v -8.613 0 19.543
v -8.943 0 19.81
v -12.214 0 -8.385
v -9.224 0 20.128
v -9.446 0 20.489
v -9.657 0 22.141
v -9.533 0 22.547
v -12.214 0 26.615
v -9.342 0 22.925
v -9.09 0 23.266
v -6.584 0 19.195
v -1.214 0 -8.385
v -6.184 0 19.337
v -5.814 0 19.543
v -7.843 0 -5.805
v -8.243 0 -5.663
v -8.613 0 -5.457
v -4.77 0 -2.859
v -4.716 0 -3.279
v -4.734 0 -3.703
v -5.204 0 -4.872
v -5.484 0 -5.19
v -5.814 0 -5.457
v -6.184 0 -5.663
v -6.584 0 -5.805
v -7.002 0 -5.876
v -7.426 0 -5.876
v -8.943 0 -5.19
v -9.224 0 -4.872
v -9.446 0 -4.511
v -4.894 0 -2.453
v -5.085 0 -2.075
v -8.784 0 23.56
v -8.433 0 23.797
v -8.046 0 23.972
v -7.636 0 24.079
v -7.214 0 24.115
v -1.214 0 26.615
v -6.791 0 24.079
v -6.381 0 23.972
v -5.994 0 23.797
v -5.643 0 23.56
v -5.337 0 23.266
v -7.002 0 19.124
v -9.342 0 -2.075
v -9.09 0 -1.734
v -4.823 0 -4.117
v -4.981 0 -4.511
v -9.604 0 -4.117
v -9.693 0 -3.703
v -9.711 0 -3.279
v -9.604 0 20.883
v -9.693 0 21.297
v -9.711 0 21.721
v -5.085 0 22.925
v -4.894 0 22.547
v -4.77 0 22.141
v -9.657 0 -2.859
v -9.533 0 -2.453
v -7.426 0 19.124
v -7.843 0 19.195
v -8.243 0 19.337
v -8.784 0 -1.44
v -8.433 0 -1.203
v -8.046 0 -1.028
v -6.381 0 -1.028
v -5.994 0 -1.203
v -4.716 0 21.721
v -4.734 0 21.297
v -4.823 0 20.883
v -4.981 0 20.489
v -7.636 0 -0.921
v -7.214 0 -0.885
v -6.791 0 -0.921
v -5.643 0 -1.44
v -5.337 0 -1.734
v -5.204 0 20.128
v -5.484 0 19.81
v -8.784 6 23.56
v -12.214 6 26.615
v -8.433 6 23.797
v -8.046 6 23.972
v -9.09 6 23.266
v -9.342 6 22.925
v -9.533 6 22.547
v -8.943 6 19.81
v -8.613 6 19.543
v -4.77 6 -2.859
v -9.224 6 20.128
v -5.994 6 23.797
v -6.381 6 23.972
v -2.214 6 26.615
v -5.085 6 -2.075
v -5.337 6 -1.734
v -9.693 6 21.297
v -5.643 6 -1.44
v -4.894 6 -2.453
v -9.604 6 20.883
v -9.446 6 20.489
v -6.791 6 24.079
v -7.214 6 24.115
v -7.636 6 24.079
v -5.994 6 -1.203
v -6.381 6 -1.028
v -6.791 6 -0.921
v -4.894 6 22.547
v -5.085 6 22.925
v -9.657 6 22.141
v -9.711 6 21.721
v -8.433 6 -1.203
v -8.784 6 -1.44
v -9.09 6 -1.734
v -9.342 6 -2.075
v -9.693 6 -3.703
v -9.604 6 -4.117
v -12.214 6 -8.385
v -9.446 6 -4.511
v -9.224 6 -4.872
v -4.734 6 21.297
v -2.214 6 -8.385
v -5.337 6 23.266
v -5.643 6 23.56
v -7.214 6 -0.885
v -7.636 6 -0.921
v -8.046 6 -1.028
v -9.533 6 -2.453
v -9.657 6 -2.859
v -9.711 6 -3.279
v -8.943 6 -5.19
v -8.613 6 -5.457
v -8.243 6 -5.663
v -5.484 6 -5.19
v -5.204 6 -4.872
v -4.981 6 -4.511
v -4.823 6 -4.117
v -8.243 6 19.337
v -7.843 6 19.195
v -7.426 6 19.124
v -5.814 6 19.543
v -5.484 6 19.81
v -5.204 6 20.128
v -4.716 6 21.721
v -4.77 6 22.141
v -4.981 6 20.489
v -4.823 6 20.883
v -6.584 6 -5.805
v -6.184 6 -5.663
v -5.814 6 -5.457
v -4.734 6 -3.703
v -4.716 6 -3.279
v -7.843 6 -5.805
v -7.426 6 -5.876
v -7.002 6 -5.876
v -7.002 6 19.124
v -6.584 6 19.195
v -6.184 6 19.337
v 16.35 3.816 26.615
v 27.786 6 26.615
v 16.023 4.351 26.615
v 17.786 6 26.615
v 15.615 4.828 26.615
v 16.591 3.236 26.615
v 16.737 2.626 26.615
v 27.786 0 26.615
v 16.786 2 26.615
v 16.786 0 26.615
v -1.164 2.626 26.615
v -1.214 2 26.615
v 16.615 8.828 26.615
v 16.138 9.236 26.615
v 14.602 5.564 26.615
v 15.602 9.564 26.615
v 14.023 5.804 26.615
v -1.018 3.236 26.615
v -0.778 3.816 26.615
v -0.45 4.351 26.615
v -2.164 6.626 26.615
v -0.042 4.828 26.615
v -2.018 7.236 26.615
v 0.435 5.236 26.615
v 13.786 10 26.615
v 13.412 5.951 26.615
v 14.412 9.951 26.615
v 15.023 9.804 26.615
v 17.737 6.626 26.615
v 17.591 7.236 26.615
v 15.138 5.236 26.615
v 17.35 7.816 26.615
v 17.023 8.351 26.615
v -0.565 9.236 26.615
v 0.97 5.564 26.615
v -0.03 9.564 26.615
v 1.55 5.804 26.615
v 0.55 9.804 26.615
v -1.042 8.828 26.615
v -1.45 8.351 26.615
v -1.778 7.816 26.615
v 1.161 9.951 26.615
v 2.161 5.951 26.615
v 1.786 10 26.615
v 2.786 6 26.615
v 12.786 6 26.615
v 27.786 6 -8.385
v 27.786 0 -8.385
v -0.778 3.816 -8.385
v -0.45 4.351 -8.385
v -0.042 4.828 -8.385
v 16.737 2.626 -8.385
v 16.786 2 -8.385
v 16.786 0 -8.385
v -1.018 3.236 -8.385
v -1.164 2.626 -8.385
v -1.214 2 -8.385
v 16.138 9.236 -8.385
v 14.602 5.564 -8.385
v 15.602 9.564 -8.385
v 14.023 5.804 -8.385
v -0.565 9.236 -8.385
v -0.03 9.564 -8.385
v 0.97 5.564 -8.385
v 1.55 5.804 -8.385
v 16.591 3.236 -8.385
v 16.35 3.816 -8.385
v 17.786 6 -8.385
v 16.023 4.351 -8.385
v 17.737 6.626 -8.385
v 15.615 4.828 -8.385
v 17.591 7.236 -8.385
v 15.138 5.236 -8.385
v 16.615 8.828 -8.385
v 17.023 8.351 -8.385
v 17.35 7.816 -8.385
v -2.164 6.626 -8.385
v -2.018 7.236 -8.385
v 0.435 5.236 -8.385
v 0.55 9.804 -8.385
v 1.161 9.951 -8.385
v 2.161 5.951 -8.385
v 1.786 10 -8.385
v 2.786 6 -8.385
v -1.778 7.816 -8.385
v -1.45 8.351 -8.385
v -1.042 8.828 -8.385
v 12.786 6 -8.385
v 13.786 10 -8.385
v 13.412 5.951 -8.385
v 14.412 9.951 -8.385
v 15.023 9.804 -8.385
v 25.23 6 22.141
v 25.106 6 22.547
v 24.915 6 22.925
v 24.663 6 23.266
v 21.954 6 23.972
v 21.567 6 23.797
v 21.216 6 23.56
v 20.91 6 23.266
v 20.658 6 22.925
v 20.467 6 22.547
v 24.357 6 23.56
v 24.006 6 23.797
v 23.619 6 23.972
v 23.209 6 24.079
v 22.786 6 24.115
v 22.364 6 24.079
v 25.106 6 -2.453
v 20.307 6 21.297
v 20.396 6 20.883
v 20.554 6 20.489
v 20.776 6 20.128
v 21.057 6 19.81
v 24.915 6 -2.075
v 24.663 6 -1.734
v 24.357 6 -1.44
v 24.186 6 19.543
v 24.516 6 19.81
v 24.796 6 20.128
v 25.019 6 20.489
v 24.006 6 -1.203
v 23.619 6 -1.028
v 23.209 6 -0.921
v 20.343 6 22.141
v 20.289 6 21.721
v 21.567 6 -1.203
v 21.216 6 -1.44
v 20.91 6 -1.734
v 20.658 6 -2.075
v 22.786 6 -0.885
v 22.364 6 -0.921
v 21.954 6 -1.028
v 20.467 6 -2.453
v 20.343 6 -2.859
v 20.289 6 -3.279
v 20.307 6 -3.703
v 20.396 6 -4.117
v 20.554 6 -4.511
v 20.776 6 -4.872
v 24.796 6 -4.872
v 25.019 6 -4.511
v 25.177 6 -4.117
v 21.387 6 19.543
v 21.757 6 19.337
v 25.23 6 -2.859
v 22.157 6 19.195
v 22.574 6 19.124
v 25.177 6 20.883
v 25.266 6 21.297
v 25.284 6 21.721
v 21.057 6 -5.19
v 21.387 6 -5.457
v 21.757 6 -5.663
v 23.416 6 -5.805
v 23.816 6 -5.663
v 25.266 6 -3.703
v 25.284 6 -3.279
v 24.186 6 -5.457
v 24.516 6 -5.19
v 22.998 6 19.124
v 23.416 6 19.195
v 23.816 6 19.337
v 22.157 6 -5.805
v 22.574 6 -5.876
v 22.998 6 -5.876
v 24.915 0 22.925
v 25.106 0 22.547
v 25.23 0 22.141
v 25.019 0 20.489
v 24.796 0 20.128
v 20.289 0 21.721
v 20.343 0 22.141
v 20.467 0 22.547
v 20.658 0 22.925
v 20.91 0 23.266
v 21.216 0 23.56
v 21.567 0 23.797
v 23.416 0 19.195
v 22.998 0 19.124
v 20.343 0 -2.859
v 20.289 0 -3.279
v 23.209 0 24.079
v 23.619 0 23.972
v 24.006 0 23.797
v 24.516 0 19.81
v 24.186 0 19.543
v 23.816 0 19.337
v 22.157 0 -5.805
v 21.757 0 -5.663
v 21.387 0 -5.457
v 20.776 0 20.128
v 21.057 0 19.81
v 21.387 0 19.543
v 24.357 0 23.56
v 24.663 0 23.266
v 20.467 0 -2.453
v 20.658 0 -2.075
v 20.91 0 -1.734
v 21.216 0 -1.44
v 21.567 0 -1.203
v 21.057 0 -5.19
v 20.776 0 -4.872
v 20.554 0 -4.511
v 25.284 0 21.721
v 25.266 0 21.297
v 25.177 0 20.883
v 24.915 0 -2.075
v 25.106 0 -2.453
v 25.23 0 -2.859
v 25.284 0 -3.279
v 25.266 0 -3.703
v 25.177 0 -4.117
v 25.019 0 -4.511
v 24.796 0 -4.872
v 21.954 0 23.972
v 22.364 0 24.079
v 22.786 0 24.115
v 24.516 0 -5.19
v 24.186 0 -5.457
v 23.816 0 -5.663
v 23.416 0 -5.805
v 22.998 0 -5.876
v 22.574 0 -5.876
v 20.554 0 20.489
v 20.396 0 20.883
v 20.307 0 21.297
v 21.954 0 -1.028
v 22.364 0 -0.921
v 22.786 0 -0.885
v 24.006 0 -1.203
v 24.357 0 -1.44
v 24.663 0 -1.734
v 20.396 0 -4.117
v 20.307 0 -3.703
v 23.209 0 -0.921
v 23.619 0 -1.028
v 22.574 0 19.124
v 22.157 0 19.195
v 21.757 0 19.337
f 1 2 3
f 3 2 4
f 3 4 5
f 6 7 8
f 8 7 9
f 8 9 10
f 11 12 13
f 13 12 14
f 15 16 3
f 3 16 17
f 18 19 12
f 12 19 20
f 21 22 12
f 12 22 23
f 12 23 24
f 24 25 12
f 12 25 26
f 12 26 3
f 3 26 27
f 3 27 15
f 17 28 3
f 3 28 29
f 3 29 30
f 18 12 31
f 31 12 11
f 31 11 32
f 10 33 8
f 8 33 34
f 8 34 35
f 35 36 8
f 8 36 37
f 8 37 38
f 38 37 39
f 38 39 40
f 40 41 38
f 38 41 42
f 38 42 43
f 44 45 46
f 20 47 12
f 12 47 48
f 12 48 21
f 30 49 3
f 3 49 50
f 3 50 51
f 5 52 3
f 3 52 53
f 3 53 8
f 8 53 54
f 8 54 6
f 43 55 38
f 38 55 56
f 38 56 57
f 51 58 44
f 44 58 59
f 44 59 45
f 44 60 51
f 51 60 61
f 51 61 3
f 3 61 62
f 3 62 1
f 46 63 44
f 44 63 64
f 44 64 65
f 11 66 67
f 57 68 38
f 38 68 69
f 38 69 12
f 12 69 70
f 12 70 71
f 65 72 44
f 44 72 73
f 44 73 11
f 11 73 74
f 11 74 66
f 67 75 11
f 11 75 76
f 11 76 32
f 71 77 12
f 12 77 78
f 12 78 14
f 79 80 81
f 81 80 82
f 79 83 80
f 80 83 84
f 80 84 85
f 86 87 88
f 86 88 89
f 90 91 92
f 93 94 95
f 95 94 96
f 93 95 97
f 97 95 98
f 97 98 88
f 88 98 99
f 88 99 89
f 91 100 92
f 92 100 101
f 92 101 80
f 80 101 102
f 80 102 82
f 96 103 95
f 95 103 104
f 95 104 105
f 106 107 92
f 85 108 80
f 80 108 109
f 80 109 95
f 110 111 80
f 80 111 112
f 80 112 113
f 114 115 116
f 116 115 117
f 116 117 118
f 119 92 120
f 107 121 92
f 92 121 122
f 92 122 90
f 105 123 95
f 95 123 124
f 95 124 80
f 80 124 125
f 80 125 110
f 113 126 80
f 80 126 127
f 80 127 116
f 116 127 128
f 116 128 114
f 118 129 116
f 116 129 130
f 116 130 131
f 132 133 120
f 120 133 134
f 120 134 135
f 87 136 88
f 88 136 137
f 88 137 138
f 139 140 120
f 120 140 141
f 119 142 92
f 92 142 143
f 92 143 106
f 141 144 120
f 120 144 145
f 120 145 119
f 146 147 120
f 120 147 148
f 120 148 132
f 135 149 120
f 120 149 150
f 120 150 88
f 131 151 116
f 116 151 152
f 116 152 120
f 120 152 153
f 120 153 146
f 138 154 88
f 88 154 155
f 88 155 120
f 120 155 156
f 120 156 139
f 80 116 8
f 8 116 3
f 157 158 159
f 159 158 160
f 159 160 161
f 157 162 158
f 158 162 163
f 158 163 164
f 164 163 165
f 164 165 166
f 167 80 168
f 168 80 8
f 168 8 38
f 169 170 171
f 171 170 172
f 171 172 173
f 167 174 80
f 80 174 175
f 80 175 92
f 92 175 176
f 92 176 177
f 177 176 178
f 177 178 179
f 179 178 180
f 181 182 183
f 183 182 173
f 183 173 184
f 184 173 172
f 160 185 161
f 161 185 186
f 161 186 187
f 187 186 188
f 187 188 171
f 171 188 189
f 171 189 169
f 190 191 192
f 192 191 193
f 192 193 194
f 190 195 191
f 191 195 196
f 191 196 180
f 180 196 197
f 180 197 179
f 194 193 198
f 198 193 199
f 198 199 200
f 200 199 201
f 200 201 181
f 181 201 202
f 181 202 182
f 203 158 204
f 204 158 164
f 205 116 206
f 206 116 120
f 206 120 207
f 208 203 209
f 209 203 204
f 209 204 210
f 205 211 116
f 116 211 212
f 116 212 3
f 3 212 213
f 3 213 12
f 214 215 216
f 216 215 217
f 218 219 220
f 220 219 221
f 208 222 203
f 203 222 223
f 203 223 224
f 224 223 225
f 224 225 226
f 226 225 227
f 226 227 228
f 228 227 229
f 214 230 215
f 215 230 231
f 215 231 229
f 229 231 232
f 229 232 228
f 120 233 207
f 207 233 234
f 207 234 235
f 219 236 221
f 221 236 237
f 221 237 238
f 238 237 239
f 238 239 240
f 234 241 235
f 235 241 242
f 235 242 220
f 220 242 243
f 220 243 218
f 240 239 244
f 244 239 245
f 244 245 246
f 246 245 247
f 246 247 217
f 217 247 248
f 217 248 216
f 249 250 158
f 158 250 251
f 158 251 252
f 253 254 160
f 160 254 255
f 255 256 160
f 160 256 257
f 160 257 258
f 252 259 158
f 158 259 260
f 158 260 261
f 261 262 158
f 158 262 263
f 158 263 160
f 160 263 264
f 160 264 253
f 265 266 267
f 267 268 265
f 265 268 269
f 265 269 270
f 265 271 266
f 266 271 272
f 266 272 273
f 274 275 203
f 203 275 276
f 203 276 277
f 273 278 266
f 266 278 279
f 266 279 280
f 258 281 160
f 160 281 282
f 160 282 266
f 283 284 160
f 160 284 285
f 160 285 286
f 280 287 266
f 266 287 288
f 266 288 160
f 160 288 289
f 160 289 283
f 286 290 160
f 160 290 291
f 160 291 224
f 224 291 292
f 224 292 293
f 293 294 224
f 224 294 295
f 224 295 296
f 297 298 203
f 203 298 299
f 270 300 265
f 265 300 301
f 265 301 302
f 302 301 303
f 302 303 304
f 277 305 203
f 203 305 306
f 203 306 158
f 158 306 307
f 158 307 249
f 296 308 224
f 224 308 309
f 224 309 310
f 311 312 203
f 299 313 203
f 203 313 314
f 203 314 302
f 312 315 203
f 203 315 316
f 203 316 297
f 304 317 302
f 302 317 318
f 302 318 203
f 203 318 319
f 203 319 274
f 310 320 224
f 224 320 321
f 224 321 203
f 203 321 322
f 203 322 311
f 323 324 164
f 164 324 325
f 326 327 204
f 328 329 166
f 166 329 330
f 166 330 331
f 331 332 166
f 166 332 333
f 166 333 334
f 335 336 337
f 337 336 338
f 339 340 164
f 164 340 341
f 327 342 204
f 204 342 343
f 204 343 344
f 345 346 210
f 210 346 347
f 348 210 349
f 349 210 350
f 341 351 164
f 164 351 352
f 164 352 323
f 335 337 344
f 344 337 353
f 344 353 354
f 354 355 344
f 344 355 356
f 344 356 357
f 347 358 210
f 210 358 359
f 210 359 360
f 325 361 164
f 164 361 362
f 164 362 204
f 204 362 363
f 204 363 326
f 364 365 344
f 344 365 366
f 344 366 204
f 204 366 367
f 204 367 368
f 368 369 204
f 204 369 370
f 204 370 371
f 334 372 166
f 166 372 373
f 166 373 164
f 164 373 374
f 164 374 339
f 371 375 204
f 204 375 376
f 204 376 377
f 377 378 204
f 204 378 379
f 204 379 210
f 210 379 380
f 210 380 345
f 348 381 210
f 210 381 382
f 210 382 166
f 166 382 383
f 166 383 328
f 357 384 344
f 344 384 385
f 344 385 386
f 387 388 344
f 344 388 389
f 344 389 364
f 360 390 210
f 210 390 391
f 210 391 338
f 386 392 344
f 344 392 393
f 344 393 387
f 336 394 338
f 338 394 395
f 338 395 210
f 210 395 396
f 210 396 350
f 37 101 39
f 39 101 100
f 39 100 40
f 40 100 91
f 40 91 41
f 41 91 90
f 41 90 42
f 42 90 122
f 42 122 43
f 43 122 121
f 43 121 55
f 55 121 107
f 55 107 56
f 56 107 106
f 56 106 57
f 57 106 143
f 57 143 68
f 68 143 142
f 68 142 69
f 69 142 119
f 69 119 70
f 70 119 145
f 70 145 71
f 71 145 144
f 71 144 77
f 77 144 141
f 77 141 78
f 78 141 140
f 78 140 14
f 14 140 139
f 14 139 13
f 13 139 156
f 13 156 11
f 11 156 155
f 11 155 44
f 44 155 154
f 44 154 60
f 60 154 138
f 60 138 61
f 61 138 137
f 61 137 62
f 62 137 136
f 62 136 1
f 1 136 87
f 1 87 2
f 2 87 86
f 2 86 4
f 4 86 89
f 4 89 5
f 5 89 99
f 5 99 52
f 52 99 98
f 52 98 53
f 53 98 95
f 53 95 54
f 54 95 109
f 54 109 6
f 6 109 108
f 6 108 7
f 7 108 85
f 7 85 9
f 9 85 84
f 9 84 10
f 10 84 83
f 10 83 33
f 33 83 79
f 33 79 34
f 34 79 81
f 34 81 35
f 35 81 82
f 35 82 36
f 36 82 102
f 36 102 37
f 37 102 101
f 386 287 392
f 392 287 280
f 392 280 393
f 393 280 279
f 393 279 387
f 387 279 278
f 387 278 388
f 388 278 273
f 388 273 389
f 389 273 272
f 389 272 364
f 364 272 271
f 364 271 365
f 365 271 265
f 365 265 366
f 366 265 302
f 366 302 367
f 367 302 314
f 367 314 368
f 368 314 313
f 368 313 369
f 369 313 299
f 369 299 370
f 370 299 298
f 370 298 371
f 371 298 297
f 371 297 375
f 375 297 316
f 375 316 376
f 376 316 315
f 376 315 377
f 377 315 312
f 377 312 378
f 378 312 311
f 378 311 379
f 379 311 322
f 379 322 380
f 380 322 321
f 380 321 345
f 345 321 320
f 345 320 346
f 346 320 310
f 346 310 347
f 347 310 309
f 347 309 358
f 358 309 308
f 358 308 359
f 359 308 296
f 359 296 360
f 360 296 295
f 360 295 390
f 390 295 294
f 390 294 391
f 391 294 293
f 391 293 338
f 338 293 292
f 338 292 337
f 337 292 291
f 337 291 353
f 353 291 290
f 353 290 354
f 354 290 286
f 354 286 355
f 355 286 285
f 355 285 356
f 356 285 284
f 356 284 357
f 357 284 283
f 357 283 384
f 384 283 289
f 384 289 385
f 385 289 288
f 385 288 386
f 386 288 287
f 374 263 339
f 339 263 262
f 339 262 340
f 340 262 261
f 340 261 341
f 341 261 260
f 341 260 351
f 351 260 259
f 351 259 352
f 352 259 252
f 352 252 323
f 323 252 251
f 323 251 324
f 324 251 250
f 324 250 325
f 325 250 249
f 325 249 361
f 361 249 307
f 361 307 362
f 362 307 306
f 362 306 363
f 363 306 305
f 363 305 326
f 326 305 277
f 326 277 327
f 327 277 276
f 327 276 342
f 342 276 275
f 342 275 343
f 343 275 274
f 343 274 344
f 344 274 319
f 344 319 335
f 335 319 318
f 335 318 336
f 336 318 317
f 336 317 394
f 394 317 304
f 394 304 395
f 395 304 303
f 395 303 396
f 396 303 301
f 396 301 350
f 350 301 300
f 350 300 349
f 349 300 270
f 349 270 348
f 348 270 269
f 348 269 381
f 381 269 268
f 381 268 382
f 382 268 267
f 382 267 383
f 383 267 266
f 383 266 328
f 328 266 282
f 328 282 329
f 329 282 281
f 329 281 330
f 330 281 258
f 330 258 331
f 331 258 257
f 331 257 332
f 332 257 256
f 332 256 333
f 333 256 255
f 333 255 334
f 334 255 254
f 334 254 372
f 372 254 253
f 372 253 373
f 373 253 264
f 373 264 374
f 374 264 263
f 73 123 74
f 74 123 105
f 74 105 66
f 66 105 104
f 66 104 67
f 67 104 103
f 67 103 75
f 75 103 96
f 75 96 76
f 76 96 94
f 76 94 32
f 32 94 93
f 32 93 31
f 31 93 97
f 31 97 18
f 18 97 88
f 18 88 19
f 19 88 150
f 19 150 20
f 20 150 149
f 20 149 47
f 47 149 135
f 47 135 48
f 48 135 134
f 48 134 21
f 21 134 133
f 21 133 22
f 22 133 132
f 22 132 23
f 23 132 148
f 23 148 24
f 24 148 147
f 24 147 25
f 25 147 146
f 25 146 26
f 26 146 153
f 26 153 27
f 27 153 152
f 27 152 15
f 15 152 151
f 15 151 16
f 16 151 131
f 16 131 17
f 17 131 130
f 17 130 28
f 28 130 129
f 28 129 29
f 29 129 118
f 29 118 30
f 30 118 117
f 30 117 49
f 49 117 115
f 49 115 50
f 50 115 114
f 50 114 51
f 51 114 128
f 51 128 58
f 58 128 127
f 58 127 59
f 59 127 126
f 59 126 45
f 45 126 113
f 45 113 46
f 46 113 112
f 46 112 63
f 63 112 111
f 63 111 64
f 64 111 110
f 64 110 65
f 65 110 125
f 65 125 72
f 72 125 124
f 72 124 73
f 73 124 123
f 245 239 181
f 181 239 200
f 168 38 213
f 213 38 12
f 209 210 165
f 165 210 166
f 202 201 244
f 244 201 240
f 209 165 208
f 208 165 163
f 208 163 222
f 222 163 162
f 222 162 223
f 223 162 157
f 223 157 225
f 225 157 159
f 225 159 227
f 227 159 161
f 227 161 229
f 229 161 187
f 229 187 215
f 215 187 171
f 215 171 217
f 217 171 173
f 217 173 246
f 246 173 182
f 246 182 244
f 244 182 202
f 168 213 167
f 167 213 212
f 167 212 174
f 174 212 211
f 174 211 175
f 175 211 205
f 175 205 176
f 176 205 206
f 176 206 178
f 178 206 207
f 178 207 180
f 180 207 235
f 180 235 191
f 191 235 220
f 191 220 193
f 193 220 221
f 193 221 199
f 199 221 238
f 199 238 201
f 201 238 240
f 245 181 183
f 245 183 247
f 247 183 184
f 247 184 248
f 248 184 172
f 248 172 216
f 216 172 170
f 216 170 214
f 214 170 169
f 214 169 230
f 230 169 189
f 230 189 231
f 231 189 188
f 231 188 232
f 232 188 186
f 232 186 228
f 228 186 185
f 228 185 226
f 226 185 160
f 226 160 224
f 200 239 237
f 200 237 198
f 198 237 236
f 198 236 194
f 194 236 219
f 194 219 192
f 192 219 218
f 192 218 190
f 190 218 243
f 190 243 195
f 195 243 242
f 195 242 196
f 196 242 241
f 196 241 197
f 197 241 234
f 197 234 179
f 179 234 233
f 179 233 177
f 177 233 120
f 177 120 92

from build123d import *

# Parameters (mm, degrees)
SKETCH1_W           = 40
SKETCH1_H           = 35
BOSS_EXTRUDE1_DEPTH = 6
SKETCH2_R           = 2.5
CUT_EXTRUDE1_DEPTH  = 6
SKETCH3_W           = 20
SKETCH3_H           = 35
BOSS_EXTRUDE2_DEPTH = 4
SKETCH4_W           = 18
SKETCH4_H           = 35
CUT_EXTRUDE2_DEPTH  = 6
FILLET2_R           = 4
FILLET3_R           = 4


with BuildPart() as part:
    # Sketch1 → Boss-Extrude1 (new body)
    with BuildSketch(Plane(origin=(0, 0, 0), x_dir=(1, 0, 0), z_dir=(0, 1, 0))):
        with Locations((7.786458333, -9.114583333)):
            Rectangle(SKETCH1_W, SKETCH1_H)
    extrude(amount=BOSS_EXTRUDE1_DEPTH)

    # Sketch2 → Cut-Extrude1 (cut)
    with BuildSketch(Plane(origin=(0, 6, 0), x_dir=(1, 0, 0), z_dir=(0, 1, 0))):
        with Locations(Location((-7.213541667, -21.614583333, 0), (0, 0, 270))):
            Circle(SKETCH2_R)
        with Locations(Location((22.786458333, 3.385416667, 0), (0, 0, 270))):
            Circle(SKETCH2_R)
        with Locations(Location((22.786458333, -21.614583333, 0), (0, 0, 270))):
            Circle(SKETCH2_R)
        with Locations(Location((-7.213541667, 3.385416667, 0), (0, 0, 270))):
            Circle(SKETCH2_R)
    extrude(amount=-CUT_EXTRUDE1_DEPTH, mode=Mode.SUBTRACT)

    # Sketch3 → Boss-Extrude2 (add)
    with BuildSketch(Plane(origin=(0, 6, 0), x_dir=(1, 0, 0), z_dir=(0, 1, 0))):
        with Locations((7.786458333, -9.114583333)):
            Rectangle(SKETCH3_W, SKETCH3_H)
    extrude(amount=BOSS_EXTRUDE2_DEPTH)

    # Sketch4 → Cut-Extrude2 (cut)
    with BuildSketch(Plane.XZ):
        with Locations((7.786458333, 9.114583333)):
            Rectangle(SKETCH4_W, SKETCH4_H)
    extrude(amount=-CUT_EXTRUDE2_DEPTH, mode=Mode.SUBTRACT)

    # Fillet2
    fillet2_edges = [part.edges().sort_by_distance(p)[0] for p in [
        (-1.213541667, 6, 9.114583333),
        (16.786458333, 6, 9.114583333),
    ]]
    fillet(fillet2_edges, radius=FILLET2_R)

    # Fillet3
    fillet3_edges = [part.edges().sort_by_distance(p)[0] for p in [
        (17.786458333, 10, 9.114583333),
        (-2.213541667, 10, 9.114583333),
    ]]
    fillet(fillet3_edges, radius=FILLET3_R - 0.0001)  # a hair under: the kernel refuses the full size


solid = part.part
